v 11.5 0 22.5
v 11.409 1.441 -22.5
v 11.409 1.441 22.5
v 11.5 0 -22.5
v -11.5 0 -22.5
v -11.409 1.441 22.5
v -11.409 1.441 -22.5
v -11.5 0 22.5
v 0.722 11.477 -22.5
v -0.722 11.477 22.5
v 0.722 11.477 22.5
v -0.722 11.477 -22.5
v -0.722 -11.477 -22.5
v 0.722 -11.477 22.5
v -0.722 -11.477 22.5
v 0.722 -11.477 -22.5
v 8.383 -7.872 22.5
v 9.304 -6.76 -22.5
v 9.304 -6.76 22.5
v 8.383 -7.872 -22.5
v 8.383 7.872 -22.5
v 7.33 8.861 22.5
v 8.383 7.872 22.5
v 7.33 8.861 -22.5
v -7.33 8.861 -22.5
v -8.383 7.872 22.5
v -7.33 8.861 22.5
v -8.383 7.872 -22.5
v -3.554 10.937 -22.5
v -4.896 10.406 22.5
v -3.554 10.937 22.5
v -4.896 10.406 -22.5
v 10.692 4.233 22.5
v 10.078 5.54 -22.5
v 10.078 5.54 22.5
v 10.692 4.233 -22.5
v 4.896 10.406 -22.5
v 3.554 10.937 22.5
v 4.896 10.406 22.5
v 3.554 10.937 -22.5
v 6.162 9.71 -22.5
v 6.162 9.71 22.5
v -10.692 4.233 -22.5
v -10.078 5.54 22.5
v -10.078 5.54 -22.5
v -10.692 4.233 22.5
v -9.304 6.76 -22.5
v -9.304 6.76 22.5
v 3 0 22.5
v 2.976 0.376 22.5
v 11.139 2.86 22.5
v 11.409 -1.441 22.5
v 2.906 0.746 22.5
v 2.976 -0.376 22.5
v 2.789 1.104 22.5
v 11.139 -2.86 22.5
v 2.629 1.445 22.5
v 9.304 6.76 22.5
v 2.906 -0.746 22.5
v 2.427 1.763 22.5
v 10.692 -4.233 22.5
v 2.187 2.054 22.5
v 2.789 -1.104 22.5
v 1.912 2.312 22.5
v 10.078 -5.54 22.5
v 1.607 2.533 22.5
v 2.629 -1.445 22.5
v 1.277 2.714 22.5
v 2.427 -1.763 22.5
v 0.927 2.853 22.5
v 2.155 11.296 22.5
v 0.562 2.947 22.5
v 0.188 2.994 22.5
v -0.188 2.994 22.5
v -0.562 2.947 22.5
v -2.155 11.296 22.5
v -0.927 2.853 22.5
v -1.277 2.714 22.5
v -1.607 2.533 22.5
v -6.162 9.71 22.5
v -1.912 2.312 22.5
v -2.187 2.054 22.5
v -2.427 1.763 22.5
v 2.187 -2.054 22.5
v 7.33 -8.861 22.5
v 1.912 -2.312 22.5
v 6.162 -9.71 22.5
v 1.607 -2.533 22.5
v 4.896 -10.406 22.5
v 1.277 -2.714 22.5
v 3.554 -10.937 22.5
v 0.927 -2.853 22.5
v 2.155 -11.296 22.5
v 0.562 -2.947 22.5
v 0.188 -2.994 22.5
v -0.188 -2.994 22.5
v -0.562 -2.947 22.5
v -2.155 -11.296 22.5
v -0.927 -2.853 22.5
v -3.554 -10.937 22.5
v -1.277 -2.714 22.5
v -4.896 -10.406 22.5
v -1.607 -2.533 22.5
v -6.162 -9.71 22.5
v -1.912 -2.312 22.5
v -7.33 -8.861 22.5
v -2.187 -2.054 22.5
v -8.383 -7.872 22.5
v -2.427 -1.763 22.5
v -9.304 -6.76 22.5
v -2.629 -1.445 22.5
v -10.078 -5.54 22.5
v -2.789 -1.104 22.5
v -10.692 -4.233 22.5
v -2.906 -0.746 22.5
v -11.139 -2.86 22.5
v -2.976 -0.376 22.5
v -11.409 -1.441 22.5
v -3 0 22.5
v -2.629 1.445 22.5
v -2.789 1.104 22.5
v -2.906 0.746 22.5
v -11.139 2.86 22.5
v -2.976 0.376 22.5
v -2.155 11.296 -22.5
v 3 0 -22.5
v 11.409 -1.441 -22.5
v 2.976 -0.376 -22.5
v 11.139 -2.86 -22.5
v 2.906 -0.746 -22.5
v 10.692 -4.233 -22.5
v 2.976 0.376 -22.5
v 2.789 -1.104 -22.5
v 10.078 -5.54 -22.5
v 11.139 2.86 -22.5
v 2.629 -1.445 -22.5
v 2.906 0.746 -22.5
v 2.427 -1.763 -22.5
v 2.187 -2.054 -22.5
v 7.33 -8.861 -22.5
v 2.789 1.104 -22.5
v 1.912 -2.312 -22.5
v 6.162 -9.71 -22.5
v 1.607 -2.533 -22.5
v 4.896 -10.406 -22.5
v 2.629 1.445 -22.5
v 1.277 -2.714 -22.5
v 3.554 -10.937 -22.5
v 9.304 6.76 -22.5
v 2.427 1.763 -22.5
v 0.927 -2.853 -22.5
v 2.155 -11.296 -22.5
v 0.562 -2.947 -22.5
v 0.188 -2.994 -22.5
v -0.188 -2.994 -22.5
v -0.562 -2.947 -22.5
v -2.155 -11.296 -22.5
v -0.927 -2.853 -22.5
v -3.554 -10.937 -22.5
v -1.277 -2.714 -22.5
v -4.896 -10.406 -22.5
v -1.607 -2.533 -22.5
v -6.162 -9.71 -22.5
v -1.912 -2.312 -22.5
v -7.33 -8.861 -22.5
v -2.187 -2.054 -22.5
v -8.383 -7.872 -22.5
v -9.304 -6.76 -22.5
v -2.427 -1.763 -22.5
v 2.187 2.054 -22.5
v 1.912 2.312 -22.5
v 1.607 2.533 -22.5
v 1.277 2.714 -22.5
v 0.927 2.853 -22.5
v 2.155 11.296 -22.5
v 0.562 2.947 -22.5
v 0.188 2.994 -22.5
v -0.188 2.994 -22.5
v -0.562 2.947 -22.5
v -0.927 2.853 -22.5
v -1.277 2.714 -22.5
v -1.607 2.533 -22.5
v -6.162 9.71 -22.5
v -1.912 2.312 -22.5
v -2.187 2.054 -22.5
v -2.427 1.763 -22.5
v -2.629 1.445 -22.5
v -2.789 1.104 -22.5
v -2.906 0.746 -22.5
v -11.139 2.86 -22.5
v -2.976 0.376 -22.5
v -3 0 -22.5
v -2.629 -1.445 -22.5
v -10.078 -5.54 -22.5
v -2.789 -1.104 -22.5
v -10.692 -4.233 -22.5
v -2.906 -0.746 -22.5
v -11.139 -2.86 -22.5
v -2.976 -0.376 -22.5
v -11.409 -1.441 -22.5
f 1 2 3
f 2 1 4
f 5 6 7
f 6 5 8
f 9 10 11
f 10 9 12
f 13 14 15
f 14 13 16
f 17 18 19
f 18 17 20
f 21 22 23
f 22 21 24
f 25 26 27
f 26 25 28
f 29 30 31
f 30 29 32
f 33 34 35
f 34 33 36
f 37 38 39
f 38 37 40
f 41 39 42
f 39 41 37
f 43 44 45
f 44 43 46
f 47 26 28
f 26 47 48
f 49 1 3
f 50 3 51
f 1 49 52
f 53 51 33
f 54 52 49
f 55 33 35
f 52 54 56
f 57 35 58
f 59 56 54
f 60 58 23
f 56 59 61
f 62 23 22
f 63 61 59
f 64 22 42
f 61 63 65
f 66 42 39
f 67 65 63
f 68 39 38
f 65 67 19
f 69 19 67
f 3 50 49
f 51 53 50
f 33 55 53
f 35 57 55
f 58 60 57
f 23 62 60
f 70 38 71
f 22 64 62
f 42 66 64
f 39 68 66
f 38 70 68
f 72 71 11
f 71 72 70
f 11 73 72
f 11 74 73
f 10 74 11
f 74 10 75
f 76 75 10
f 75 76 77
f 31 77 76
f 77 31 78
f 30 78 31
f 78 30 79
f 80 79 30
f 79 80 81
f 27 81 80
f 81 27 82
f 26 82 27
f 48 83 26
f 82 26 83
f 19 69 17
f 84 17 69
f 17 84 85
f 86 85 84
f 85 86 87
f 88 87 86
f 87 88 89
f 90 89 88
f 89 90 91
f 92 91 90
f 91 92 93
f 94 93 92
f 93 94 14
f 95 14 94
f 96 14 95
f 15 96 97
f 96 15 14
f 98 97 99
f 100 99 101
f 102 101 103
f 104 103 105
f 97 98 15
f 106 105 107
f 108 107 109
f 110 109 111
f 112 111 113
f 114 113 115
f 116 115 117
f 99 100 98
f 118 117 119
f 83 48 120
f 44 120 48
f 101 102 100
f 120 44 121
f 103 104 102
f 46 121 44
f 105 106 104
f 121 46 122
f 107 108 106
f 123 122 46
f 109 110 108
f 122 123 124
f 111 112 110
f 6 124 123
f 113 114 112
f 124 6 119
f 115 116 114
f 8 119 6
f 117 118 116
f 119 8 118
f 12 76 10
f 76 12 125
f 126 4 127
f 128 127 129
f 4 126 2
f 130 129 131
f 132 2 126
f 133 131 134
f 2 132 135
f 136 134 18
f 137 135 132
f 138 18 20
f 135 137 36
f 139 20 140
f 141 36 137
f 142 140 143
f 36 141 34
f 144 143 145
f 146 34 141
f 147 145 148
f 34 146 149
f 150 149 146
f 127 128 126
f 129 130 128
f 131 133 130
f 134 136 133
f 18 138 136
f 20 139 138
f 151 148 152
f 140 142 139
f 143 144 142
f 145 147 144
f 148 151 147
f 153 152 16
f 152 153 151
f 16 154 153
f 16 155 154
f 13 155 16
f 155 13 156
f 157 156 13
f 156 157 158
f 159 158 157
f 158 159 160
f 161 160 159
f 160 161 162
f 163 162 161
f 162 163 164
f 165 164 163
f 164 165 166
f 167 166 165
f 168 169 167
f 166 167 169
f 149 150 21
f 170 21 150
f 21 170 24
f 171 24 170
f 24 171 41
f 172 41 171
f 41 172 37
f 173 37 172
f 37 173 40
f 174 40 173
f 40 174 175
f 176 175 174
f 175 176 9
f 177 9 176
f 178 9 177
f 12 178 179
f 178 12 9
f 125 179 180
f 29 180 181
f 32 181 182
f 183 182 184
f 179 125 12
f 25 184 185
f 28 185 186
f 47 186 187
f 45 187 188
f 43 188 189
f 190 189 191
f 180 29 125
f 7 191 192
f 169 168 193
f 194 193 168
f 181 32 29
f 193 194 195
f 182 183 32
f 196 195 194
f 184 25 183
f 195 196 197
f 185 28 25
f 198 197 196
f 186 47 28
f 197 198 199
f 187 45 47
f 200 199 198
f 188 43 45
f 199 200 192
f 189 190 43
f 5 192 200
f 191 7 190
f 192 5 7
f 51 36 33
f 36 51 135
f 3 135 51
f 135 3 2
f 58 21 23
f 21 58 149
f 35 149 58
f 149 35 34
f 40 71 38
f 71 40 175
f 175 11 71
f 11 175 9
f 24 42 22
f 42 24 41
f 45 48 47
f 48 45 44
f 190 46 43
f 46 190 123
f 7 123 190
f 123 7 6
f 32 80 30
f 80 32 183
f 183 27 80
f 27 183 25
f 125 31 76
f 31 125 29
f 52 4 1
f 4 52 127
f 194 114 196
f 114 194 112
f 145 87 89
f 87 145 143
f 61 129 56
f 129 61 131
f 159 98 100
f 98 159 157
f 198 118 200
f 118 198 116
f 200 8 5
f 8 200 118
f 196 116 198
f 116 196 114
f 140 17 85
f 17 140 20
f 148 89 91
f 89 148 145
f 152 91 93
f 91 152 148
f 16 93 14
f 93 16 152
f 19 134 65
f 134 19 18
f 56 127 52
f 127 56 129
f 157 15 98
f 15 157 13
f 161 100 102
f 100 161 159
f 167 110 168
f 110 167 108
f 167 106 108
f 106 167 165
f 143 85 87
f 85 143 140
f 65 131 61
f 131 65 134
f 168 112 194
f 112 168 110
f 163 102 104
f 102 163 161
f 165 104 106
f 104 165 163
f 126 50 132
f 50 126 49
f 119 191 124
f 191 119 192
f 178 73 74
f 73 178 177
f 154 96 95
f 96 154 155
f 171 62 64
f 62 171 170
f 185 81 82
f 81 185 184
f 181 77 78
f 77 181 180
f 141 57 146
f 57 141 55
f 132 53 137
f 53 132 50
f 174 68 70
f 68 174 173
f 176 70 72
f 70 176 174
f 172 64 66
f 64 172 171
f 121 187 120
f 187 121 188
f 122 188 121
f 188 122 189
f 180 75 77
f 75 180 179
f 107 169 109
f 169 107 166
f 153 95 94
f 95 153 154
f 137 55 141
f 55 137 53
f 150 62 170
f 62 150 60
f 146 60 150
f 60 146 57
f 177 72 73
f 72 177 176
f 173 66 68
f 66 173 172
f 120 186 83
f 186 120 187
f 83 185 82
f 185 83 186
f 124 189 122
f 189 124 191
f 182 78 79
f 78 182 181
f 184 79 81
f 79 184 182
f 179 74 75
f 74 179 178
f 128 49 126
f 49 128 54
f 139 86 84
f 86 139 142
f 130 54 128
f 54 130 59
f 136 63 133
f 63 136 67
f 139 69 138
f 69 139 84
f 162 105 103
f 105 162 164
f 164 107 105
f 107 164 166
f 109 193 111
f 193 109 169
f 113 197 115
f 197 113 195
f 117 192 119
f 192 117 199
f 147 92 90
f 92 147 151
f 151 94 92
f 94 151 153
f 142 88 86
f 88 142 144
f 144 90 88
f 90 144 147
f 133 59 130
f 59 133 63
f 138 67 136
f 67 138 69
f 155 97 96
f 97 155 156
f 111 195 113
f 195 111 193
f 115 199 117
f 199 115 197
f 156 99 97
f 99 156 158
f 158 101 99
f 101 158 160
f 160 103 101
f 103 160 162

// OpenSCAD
$fn = 50;


difference() {
	union() {
		translate(v = [0, 0, -22.5000000000]) {
			cylinder(h = 45, r = 11.5000000000);
		}
	}
	union() {
		translate(v = [0, 0, -100.0000000000]) {
			cylinder(h = 200, r = 3);
		}
	}
}
